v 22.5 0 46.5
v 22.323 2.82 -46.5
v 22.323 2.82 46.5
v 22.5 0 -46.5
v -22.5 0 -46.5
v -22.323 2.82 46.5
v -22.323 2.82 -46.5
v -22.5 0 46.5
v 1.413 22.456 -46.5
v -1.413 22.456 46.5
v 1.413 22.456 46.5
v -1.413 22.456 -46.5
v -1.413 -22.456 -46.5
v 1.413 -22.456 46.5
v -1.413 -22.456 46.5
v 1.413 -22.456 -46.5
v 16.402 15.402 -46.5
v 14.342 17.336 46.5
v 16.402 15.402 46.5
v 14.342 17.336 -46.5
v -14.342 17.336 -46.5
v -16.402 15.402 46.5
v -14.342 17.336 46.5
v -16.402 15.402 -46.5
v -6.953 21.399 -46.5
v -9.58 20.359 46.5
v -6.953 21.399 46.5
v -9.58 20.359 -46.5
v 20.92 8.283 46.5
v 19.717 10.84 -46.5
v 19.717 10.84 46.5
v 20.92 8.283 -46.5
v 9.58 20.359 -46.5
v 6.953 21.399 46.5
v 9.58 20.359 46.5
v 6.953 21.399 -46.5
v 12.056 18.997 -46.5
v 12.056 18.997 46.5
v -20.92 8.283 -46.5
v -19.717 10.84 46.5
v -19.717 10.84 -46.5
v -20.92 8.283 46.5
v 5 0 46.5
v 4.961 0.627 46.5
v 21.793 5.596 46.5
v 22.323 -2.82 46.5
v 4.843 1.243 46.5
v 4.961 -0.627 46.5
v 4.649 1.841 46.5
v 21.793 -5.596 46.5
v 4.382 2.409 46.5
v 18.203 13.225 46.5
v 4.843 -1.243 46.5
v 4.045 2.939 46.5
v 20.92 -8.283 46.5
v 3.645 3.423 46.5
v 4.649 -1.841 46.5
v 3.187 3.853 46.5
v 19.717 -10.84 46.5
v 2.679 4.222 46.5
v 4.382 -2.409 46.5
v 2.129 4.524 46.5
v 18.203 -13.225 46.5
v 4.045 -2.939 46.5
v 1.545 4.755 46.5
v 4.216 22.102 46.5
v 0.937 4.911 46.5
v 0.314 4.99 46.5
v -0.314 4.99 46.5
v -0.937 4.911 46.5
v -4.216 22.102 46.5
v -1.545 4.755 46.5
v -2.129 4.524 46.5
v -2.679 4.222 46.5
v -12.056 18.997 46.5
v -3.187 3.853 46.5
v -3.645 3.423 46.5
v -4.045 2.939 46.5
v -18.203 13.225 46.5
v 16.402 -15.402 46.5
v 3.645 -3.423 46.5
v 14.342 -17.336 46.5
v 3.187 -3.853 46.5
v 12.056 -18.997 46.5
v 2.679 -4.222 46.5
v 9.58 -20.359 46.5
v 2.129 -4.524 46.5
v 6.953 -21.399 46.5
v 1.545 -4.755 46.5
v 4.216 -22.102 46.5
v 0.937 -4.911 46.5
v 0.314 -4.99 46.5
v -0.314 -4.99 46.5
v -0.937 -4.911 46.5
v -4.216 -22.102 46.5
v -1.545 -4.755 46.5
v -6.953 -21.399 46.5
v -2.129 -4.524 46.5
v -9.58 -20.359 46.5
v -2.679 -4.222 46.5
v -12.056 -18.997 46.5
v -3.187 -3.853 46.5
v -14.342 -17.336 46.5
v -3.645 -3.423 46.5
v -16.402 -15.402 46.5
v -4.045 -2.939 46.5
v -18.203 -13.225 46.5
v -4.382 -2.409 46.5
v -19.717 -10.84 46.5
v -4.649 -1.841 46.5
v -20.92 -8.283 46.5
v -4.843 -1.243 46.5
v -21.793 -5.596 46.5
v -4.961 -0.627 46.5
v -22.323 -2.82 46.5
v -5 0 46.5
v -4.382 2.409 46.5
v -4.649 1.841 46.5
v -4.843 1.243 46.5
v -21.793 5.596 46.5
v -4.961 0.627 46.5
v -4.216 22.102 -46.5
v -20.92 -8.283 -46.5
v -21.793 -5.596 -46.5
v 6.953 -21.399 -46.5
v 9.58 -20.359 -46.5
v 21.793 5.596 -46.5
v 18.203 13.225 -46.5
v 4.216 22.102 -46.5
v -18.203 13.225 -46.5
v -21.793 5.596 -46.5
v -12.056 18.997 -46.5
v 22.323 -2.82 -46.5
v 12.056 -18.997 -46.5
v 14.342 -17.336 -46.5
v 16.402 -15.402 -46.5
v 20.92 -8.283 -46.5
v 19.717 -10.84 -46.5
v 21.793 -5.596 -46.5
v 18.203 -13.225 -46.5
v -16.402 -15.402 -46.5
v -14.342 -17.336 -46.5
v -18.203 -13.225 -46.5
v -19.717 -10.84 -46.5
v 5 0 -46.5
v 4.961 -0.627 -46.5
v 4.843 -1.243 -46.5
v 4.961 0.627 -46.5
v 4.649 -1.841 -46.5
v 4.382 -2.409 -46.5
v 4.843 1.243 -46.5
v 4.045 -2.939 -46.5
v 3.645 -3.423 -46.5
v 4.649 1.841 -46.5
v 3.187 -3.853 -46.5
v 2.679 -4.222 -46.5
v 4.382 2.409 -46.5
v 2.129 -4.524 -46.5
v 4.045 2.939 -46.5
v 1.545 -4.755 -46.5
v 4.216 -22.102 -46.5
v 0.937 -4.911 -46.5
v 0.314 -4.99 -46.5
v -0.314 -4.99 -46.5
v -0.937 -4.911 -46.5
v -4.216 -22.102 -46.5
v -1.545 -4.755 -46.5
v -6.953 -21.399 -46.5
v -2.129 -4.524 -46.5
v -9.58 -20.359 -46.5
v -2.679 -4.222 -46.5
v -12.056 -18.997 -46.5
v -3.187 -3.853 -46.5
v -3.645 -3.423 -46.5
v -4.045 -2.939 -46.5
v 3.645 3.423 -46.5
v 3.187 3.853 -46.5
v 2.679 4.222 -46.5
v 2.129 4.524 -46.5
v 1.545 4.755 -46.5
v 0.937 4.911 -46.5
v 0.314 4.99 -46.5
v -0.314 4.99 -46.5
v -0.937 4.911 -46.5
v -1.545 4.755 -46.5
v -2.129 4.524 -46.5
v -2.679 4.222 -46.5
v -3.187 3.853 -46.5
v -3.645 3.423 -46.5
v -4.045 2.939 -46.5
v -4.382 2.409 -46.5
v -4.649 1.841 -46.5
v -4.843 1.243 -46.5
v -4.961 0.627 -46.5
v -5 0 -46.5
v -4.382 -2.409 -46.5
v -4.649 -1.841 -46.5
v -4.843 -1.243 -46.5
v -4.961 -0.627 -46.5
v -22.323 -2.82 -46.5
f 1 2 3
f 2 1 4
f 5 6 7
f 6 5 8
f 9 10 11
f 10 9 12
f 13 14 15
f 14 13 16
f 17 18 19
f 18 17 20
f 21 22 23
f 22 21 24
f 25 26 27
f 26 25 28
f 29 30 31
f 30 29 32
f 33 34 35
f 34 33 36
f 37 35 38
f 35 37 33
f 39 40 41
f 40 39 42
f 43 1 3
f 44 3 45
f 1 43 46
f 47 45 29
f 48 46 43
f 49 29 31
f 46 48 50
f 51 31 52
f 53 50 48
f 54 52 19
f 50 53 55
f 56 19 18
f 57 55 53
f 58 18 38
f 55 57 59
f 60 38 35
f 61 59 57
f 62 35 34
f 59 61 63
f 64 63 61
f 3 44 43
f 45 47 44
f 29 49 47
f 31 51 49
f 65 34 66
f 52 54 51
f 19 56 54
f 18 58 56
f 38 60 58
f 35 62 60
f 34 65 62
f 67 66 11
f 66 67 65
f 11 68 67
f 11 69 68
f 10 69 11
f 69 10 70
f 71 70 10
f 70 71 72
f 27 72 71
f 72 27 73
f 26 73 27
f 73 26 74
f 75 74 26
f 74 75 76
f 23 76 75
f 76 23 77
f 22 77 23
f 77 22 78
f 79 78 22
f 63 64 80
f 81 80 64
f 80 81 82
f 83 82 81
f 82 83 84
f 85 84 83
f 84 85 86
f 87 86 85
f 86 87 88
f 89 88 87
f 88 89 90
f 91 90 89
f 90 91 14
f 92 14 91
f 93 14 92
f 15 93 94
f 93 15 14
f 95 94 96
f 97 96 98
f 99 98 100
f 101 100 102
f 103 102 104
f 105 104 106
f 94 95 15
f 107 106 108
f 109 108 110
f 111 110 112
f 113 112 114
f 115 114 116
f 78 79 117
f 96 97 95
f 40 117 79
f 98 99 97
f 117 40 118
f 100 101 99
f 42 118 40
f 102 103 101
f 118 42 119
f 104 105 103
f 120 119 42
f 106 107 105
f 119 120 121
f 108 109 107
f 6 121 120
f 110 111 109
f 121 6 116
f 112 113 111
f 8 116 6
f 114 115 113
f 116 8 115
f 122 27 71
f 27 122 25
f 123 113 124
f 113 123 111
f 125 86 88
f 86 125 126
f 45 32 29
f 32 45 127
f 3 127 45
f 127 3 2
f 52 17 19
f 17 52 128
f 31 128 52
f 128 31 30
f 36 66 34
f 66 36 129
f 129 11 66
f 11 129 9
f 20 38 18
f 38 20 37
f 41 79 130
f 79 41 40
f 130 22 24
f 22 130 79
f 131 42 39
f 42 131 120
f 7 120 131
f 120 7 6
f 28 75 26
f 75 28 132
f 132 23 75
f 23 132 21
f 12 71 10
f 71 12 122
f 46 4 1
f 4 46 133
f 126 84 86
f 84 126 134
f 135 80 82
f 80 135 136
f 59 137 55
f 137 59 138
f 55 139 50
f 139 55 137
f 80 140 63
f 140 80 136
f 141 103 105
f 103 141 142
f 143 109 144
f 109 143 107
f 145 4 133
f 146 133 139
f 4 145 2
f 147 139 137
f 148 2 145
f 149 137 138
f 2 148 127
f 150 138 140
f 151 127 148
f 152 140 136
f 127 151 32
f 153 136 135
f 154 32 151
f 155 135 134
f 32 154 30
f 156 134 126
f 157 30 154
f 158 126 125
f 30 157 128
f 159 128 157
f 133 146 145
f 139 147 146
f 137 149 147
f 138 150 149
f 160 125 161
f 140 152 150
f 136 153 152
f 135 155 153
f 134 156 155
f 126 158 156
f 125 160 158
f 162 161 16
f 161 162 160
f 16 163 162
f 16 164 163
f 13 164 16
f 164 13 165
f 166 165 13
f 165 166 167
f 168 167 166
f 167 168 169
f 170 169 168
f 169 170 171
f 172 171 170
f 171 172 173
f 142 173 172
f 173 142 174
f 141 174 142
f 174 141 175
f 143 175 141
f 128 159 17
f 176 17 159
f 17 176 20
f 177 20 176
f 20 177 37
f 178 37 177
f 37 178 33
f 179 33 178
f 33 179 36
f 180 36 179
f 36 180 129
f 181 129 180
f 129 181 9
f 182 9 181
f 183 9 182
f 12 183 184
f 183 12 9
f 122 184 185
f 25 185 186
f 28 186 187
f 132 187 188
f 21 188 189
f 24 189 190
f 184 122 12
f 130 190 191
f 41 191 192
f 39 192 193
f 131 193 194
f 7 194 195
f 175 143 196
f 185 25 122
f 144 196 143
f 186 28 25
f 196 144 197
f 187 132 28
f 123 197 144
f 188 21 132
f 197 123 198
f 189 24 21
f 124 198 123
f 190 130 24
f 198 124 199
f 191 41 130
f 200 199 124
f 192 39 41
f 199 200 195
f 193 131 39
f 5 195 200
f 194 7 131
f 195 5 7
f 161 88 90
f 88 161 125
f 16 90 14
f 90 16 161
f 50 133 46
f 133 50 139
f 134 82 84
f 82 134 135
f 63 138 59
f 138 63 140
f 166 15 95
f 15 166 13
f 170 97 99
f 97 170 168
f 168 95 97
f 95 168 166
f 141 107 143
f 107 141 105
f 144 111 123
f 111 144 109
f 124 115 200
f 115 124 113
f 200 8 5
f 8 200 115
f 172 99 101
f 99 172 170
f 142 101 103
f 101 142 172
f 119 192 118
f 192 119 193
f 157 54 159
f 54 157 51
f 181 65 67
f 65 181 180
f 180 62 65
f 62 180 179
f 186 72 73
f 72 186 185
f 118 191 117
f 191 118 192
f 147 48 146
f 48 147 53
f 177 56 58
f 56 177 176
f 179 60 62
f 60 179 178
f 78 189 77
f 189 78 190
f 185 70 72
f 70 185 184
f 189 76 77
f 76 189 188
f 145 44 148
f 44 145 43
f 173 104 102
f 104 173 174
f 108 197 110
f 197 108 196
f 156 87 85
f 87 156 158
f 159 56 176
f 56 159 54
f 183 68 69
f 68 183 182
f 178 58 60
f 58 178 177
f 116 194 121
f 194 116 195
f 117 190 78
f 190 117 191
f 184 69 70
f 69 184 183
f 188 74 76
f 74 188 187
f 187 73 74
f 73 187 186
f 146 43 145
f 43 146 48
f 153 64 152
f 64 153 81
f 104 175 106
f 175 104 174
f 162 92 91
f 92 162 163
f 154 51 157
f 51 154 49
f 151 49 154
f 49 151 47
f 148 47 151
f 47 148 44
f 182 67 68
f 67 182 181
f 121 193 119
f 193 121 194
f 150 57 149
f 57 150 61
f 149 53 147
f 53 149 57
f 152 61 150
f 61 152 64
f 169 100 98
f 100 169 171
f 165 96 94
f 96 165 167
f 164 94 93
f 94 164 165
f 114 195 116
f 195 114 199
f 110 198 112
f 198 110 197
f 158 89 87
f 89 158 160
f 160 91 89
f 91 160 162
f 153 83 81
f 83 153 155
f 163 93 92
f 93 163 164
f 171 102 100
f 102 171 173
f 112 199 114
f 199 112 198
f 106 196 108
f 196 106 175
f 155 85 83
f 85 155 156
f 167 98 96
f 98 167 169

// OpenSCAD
$fn = 50;


difference() {
	union() {
		translate(v = [0, 0, -46.5000000000]) {
			cylinder(h = 93, r = 22.5000000000);
		}
	}
	union() {
		translate(v = [0, 0, -100.0000000000]) {
			cylinder(h = 200, r = 5);
		}
	}
}
